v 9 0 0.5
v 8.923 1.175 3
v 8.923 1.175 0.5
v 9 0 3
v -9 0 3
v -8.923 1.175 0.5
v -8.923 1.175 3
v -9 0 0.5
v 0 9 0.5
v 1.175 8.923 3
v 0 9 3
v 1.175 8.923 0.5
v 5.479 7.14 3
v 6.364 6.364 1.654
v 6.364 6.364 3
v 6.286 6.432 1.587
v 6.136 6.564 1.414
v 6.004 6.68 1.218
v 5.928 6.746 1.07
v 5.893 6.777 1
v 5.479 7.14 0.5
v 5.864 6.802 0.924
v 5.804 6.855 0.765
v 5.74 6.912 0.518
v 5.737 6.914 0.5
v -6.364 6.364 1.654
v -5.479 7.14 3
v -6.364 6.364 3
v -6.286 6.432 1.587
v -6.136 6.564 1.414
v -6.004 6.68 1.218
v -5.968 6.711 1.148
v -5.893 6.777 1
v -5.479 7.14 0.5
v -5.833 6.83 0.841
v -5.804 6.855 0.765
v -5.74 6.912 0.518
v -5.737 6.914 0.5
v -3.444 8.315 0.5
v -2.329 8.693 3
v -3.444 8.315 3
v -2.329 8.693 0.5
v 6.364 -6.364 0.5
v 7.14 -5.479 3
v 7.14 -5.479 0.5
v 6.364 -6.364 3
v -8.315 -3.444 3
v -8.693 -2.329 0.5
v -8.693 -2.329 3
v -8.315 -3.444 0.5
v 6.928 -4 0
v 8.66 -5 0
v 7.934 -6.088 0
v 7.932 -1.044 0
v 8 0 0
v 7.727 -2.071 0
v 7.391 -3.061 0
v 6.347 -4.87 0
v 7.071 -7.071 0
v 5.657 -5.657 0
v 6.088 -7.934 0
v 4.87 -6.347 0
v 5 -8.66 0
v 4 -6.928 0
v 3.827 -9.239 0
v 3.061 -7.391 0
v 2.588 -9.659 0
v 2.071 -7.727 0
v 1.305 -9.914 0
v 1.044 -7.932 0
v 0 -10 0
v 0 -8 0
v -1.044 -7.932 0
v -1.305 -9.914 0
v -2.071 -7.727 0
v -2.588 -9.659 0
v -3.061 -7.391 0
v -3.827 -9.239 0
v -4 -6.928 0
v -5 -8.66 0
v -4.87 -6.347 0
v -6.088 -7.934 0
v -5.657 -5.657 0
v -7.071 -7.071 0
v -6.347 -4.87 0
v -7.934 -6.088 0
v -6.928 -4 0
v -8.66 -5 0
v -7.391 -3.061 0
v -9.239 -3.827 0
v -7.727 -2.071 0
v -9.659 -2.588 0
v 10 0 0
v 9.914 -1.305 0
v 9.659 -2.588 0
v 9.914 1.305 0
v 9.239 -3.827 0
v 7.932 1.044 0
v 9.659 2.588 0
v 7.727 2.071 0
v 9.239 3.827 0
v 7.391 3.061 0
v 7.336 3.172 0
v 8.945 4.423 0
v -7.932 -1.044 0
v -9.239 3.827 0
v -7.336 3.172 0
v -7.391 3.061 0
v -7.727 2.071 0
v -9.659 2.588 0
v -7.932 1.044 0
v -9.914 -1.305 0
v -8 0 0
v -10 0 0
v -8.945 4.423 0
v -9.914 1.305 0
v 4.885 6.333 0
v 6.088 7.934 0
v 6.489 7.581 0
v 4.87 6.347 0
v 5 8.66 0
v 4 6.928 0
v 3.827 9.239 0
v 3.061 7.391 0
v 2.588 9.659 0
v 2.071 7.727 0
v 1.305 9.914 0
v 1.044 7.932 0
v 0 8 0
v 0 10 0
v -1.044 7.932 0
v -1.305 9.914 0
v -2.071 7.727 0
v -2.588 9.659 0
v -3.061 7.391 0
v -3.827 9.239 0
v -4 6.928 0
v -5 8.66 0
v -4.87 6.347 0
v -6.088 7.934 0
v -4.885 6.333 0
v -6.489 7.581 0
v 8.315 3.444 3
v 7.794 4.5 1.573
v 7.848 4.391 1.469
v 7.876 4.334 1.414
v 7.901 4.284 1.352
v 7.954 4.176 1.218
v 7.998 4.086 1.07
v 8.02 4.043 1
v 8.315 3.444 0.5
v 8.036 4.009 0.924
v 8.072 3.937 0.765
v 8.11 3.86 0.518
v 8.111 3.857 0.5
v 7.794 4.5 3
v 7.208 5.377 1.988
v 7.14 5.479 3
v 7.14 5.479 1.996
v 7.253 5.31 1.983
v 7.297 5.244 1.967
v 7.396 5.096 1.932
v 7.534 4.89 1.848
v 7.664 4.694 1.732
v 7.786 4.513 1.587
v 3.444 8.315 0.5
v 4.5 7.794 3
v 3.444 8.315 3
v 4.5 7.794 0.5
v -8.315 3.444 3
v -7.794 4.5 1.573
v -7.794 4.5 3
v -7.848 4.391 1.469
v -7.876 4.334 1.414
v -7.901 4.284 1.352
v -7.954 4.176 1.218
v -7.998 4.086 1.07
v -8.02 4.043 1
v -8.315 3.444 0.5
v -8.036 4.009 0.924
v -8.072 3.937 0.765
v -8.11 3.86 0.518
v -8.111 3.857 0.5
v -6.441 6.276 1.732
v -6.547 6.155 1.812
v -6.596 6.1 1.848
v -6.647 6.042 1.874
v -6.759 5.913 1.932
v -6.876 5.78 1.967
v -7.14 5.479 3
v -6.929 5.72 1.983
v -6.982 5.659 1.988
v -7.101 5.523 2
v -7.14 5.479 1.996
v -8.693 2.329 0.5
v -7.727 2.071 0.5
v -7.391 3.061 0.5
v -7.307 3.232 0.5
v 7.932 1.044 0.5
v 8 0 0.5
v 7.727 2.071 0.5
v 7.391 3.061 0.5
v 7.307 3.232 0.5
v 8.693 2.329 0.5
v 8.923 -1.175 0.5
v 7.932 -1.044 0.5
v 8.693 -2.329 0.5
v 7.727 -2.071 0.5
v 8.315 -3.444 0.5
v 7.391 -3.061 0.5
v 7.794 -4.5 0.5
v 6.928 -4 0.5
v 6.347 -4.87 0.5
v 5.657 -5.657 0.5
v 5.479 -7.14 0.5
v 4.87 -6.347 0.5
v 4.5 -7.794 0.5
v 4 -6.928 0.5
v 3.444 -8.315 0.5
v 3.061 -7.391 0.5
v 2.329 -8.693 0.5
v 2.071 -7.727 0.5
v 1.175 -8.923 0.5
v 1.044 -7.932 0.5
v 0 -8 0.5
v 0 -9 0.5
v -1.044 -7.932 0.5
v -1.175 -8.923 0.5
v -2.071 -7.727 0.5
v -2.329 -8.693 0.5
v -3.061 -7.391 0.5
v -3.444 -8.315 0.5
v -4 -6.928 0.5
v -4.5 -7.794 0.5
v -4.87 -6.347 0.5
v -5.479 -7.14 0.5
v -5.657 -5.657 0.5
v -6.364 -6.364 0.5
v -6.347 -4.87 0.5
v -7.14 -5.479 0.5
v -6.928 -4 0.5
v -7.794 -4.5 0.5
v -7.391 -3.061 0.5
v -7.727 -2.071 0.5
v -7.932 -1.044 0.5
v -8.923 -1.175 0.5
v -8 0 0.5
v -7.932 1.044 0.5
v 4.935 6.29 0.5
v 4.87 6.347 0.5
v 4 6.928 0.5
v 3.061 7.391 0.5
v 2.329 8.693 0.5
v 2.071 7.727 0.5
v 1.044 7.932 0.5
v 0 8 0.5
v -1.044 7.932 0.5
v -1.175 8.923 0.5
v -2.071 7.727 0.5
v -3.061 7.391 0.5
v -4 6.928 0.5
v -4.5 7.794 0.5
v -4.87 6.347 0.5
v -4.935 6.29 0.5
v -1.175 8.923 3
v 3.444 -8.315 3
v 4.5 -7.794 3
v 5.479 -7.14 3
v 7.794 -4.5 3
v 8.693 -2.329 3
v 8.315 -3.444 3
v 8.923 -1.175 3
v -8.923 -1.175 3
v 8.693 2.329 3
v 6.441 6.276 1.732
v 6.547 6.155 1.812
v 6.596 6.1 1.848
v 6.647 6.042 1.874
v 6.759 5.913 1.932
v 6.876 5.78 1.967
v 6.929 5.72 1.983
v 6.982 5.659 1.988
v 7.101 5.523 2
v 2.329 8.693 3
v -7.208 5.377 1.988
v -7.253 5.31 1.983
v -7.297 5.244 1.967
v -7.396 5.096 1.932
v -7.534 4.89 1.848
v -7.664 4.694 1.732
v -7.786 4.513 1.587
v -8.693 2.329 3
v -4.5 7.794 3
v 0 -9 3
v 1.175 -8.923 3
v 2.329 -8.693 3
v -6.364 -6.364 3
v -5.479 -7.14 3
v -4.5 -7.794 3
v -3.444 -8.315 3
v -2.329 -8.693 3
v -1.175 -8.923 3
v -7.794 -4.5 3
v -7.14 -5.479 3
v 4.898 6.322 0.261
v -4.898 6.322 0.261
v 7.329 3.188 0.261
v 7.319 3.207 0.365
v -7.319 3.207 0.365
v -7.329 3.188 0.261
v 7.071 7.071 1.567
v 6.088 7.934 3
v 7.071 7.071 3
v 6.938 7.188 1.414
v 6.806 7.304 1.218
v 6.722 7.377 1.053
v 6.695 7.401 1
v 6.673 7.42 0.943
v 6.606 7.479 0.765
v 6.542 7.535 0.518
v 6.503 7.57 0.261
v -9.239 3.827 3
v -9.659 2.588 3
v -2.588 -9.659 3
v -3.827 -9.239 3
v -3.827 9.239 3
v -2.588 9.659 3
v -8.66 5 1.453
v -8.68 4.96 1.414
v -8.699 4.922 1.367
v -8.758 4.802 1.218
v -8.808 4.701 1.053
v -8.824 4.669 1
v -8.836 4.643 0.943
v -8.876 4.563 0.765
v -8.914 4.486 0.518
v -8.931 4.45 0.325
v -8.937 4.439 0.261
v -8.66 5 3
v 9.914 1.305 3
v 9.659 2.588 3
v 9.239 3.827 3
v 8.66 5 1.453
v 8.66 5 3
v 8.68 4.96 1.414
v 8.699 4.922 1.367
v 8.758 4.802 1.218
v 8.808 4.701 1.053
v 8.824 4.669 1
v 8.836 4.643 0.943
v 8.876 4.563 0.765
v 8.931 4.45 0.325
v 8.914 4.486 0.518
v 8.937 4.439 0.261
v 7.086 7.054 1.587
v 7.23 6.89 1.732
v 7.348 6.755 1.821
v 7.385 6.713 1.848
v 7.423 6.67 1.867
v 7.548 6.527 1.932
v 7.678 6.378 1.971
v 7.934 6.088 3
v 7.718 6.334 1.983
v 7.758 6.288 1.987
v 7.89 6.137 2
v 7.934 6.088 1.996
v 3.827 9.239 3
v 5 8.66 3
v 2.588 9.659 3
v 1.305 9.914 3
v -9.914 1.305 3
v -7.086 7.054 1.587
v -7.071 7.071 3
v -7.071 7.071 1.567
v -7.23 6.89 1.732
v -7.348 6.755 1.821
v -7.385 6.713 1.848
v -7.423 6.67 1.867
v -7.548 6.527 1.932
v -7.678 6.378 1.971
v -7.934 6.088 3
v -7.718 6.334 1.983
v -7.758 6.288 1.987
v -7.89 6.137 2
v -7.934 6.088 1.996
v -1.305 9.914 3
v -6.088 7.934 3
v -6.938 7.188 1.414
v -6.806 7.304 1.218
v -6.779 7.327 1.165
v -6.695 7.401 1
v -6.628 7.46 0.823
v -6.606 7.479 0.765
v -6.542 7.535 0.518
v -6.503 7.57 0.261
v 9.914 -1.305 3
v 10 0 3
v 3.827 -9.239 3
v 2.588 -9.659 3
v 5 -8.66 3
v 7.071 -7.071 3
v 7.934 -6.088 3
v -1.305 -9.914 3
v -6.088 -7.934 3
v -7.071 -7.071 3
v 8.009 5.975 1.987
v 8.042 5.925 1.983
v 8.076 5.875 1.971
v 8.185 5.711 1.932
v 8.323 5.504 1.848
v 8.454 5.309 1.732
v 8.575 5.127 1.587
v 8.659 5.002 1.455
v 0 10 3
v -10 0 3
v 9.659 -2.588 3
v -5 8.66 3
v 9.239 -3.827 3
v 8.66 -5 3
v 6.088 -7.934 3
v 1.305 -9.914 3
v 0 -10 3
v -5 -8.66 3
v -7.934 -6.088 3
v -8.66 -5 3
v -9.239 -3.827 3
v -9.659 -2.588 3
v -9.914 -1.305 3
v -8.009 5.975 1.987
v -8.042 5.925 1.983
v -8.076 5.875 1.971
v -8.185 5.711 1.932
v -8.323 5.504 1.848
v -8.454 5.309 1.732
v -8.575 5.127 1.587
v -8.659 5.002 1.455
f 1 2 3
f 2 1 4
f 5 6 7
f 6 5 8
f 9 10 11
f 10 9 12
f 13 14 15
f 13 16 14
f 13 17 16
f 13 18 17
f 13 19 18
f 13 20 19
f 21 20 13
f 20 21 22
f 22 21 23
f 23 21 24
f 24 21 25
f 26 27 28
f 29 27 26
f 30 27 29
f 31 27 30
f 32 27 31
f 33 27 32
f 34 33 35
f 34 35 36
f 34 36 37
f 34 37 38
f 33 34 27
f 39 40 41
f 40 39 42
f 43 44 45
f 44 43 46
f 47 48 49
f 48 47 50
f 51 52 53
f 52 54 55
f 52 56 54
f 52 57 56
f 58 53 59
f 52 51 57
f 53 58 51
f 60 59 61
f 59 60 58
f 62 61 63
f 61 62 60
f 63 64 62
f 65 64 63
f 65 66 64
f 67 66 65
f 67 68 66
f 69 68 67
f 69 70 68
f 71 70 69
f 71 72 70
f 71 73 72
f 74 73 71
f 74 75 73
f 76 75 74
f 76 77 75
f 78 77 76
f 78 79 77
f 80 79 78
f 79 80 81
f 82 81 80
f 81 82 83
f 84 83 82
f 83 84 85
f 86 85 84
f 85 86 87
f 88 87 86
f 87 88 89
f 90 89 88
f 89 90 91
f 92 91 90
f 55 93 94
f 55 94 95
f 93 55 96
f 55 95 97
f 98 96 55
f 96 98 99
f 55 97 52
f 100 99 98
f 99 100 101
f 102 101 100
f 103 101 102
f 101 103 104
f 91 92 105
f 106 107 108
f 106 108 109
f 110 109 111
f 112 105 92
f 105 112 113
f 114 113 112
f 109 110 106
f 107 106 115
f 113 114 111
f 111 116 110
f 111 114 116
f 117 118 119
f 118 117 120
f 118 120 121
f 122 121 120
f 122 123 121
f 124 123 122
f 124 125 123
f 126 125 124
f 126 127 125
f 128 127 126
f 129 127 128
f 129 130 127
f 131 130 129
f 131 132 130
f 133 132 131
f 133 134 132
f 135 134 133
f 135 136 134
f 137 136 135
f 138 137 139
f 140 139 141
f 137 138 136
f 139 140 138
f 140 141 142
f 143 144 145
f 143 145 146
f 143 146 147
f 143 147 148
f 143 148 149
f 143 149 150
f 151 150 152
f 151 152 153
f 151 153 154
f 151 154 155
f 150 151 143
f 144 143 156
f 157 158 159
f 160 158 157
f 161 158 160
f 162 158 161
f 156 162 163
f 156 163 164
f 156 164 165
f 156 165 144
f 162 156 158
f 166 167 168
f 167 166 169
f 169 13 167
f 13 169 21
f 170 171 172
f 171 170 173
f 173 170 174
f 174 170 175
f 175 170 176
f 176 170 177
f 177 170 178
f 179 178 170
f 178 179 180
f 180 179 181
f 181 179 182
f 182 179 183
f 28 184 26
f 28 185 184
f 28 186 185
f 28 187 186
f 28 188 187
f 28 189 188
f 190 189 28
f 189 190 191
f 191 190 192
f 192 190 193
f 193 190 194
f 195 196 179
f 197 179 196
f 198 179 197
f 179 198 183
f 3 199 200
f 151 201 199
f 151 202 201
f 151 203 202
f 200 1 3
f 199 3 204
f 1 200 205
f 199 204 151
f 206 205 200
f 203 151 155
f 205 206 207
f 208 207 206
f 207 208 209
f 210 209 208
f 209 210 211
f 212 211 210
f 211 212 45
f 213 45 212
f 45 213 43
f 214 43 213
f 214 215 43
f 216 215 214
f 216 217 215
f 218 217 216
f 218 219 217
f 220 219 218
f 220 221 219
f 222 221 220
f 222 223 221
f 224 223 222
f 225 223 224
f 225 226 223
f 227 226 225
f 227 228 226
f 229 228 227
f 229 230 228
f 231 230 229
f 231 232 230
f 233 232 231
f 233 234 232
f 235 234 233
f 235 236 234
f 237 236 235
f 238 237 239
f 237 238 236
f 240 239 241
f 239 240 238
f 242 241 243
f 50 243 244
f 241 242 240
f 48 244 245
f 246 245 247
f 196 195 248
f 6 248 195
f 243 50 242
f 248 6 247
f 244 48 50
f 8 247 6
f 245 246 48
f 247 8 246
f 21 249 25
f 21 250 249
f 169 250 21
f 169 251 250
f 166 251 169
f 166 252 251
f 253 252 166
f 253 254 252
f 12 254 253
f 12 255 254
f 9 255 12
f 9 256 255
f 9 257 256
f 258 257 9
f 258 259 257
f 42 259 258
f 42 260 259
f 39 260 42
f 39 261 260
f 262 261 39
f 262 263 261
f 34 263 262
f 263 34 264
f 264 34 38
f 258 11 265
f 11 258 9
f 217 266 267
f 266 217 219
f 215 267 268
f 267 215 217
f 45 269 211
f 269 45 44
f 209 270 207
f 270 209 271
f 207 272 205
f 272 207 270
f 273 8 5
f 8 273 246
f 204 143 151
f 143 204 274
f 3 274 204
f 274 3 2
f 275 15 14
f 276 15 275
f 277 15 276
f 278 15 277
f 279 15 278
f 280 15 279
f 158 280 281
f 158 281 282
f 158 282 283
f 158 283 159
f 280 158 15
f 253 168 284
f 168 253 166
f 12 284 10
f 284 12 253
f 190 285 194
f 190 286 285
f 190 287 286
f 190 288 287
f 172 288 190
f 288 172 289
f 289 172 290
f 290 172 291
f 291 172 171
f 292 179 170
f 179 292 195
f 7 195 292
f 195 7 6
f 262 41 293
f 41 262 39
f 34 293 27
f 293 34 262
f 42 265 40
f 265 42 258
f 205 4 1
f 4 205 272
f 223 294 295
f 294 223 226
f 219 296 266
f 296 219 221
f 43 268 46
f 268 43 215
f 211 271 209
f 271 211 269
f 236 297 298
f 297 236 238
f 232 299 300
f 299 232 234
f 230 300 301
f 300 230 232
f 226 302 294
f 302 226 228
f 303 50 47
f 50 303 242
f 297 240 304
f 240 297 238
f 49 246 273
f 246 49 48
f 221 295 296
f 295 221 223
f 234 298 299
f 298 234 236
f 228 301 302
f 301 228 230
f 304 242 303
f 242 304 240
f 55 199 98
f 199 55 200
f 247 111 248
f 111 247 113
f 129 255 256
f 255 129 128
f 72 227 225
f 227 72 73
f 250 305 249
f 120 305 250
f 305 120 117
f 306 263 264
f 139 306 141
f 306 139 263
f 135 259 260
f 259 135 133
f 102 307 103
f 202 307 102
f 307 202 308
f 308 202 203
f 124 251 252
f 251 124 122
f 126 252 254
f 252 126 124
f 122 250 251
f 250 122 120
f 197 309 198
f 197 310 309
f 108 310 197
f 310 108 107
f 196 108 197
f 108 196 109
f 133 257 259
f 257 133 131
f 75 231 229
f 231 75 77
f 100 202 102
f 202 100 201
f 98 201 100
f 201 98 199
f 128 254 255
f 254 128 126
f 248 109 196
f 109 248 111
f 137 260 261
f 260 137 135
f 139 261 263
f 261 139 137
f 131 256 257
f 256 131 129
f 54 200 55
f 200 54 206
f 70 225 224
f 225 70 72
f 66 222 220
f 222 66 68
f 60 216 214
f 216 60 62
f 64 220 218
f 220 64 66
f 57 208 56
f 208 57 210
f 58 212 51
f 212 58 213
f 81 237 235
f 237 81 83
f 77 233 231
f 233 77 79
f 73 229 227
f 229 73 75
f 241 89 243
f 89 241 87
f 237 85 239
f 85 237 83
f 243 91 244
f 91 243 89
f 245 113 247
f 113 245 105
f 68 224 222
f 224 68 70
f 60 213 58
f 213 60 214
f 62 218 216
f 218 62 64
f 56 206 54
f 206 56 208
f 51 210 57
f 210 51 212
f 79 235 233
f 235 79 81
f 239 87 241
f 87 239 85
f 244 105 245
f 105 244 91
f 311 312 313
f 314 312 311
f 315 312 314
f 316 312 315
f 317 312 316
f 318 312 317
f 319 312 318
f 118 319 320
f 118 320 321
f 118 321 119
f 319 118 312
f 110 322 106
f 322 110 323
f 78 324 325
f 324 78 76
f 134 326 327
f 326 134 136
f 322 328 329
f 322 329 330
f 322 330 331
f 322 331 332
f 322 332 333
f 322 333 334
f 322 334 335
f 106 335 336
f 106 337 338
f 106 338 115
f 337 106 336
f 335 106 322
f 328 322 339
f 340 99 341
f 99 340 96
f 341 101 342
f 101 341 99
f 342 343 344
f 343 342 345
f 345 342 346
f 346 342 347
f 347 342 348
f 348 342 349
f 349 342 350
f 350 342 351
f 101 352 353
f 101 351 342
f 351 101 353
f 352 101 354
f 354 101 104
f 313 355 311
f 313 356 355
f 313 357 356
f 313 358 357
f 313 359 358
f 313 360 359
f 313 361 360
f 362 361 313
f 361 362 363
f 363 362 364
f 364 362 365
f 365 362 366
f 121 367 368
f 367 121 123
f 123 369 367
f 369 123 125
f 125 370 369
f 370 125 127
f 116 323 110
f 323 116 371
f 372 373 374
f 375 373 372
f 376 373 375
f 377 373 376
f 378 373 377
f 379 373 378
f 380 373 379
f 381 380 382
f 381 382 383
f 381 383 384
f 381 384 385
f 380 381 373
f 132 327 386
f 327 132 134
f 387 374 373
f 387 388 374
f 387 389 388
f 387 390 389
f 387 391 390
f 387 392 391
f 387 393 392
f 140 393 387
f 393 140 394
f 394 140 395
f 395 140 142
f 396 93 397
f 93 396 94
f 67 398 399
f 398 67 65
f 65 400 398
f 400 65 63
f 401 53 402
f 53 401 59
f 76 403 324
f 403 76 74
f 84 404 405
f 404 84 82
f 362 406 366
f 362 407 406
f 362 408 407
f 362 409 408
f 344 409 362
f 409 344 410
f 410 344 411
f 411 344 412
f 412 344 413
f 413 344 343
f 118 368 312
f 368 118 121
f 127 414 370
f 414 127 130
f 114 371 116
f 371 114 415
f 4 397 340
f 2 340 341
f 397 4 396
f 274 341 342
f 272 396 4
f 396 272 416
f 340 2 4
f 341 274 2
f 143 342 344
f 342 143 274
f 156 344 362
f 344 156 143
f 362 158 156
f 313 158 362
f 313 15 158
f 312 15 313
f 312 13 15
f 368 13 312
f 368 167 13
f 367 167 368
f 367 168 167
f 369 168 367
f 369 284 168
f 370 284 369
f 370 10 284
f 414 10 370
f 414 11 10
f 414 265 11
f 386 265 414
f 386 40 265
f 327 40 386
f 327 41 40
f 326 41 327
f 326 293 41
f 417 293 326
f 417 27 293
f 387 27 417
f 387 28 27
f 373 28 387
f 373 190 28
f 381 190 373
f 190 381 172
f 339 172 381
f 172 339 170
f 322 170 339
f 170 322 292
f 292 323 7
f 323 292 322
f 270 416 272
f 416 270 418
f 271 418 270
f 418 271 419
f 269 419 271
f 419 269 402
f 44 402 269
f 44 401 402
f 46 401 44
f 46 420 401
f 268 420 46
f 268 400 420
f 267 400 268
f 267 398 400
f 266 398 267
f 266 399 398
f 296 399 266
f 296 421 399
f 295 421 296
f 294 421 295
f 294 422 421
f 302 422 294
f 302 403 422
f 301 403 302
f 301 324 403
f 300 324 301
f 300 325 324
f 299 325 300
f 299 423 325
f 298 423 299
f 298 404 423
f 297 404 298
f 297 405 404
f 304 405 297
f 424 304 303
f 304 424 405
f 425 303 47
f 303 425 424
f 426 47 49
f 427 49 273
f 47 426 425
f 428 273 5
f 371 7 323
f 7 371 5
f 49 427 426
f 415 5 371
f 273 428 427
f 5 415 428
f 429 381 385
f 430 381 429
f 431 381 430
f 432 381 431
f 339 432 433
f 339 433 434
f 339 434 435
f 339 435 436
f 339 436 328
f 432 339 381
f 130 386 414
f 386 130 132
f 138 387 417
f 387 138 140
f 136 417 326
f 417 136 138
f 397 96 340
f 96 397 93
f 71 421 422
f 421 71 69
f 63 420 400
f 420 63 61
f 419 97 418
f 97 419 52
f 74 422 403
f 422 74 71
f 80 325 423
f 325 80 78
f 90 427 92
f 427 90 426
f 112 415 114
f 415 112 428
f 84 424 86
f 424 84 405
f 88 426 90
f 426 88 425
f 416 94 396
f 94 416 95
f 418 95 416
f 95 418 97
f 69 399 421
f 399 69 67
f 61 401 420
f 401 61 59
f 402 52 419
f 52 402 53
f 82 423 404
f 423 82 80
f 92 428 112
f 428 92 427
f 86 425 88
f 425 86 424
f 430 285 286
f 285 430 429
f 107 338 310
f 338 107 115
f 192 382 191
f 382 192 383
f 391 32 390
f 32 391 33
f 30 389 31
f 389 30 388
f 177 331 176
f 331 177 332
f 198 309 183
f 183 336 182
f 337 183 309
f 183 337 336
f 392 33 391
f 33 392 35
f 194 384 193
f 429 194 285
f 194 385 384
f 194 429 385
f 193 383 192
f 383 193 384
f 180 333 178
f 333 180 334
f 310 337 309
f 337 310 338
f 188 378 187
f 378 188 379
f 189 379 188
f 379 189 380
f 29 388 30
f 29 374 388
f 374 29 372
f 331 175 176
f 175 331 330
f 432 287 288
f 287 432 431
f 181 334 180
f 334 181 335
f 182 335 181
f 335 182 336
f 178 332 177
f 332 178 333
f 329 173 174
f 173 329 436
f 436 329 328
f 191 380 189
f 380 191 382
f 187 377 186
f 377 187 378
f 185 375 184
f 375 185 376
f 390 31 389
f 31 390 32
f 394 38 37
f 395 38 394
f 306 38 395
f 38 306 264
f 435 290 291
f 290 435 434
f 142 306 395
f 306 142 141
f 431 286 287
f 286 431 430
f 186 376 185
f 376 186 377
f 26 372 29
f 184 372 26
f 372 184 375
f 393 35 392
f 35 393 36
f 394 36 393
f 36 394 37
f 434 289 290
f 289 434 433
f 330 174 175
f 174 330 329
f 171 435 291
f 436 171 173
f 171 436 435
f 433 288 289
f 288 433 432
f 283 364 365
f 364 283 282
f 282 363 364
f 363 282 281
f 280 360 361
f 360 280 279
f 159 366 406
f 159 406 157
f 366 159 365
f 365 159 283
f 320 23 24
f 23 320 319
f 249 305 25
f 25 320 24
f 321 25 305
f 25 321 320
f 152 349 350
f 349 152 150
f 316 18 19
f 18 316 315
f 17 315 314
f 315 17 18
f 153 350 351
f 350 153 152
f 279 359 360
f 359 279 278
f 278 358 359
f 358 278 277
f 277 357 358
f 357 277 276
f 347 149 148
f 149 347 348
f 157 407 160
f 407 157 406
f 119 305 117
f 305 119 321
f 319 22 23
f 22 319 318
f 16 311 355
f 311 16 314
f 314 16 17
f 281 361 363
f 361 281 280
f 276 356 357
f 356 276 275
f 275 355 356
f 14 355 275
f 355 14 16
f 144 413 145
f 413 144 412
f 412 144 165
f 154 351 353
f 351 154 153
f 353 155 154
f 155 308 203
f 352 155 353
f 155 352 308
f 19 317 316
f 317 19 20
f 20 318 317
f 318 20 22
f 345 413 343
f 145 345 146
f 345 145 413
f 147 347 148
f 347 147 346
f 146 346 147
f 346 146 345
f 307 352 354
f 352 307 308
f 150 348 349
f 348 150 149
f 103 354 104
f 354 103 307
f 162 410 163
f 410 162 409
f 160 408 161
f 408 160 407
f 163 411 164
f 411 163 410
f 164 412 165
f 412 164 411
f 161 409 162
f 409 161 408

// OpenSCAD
// file: ../build_environments.scad
// build_environments.scad: modules to build level sections
//

module pool(diameter=10.0, wall_height=2.0, step_width=3.0, connections=[])
{
    difference() {
        union() {
        difference() {
            cylinder(h=0.5,r1=diameter+step_width,r2=diameter+step_width,$fn=48);
            translate([0,0,-0.1])
                cylinder(h=0.7,r1=diameter,r2=diameter,$fn=48);
        }
        difference() {
            cylinder(h=wall_height,r1=diameter+step_width+1.0,r2=diameter+step_width+1.0,$fn=48);
            translate([0,0,-0.1])
                cylinder(h=wall_height+0.2,r1=diameter+step_width,r2=diameter+step_width,$fn=48);
        }
        }
    
        for (c = connections)
        {
            rotate([0,90,0]) {
                angle = atan2(c[1],c[0]);
                rotate([-angle,0,0]) {
                    cylinder(h=diameter+5.0,r1=c[2],r2=c[2],$fn=48);
                }
            }
        }
    }
}

module straight(length=10.0, width=2.0, dy1=0.0, dy2=0.0, dz=0.0)
{
    dims = [0, 0, 0, 0, 0, (dz/length)];
    matrix = [
        [ 1, dims[0], dims[1], 0 ],
        [ dims[2], 1, dims[4], 0 ],
        [ dims[5], dims[3], 1, 0 ],
        [ 0, 0, 0, 1 ]
    ];
    multmatrix(matrix)
    difference() {
        translate([dy1,0,0])
        union() {
            rotate([0,90,0]) {
                difference() {
                    cylinder(h=(length-dy1-dy2),r1=width+1.0,r2=width+1.0,$fn=24);
                    translate([0,0,-0.1])
                        cylinder(h=(length-dy1-dy2+0.2),r1=width,r2=width,$fn=24);
                }
                difference() {
                    cylinder(h=1.0,r1=width+2.0,r2=width+2.0,$fn=24);
                    translate([0,0,-0.1])
                        cylinder(h=1.2,r1=width,r2=width,$fn=24);
                }
                translate([0,0,(length-dy1-dy2)-1.0]) {
                    difference() {
                        cylinder(h=1.0,r1=width+2.0,r2=width+2.0,$fn=24);
                        translate([0,0,-0.1])
                            cylinder(h=1.2,r1=width,r2=width,$fn=24);
                    }
                }
            }
        }
        translate([0,0,-(2*width+4.0)/2])
            cube([3*length,3*length,2*width+4.0],center=true);
    }
}

module curve(p0=[0,0], center=[0,0], dir=1, angle=0.0, width=2.0)
{
    radius = sqrt((p0[0]-center[0])*(p0[0]-center[0]) + (p0[1]-center[1])*(p0[1]-center[1]));
    if (dir == 0) {
        difference() {
            rotate([0,0,-90])
            difference() {
                rotate_extrude(angle = angle, convexity = 10, $fn=32)
                    translate([radius, 0, 0])
                        circle(r = width+1.0,$fn=24);
                rotate([0,0,-1.0])
                    rotate_extrude(angle = angle+2.0, convexity = 10, $fn=32)
                        translate([radius, 0, 0])
                            circle(r = width,$fn=24);
            }
            translate([0,0,-(2*width+4.0)/2])
                cube([5*radius,5*radius,2*width+4.0],center=true);
        }
    }
    else {
        difference() {
            rotate([0,0,90])
            difference() {
                rotate_extrude(angle = -angle, convexity = 10, $fn=32)
                    translate([radius, 0, 0])
                        circle(r = width+1.0,$fn=24);
                rotate([0,0,1.0])
                    rotate_extrude(angle = -angle-2.0, convexity = 10, $fn=32)
                        translate([radius, 0, 0])
                            circle(r = width,$fn=24);
            }
            translate([0,0,-(2*width+4.0)/2])
                cube([5*radius,5*radius,2*width+4.0],center=true);
        }
    }

}

// test pool
//pool(diameter=12.0000, wall_height=3.0000, step_width=3.0000, connections=[[0.0000,-26.0000,2.0000], [23.6074,0.0000,2.0000]]);

// test straight, slope
//straight(length=26.0000, width=2.0000, dy1=11.8322, dy2=6.7082, dz=0.0000);
//straight(length=29.1549, width=12.0000, dy1=0.0000, dy2=0.0000, dz=-15.0000);

// test curve
//curve(p0=[23.6074, 0.0000], center=[23.6074, 5.0000], dir=0, angle=60.1011, width=2.0000);
//curve(p0=[33.6426, 12.4219], center=[37.9771, 9.9295], dir=1, angle=120.4627, width=2.0000);
// main file
use <../build_environments.scad>;
pool(diameter=8.0000, wall_height=3.0000, step_width=1.0000, connections=[[-18.0000,14.0000,2.0000], [18.0000,14.0000,2.0000]]);
